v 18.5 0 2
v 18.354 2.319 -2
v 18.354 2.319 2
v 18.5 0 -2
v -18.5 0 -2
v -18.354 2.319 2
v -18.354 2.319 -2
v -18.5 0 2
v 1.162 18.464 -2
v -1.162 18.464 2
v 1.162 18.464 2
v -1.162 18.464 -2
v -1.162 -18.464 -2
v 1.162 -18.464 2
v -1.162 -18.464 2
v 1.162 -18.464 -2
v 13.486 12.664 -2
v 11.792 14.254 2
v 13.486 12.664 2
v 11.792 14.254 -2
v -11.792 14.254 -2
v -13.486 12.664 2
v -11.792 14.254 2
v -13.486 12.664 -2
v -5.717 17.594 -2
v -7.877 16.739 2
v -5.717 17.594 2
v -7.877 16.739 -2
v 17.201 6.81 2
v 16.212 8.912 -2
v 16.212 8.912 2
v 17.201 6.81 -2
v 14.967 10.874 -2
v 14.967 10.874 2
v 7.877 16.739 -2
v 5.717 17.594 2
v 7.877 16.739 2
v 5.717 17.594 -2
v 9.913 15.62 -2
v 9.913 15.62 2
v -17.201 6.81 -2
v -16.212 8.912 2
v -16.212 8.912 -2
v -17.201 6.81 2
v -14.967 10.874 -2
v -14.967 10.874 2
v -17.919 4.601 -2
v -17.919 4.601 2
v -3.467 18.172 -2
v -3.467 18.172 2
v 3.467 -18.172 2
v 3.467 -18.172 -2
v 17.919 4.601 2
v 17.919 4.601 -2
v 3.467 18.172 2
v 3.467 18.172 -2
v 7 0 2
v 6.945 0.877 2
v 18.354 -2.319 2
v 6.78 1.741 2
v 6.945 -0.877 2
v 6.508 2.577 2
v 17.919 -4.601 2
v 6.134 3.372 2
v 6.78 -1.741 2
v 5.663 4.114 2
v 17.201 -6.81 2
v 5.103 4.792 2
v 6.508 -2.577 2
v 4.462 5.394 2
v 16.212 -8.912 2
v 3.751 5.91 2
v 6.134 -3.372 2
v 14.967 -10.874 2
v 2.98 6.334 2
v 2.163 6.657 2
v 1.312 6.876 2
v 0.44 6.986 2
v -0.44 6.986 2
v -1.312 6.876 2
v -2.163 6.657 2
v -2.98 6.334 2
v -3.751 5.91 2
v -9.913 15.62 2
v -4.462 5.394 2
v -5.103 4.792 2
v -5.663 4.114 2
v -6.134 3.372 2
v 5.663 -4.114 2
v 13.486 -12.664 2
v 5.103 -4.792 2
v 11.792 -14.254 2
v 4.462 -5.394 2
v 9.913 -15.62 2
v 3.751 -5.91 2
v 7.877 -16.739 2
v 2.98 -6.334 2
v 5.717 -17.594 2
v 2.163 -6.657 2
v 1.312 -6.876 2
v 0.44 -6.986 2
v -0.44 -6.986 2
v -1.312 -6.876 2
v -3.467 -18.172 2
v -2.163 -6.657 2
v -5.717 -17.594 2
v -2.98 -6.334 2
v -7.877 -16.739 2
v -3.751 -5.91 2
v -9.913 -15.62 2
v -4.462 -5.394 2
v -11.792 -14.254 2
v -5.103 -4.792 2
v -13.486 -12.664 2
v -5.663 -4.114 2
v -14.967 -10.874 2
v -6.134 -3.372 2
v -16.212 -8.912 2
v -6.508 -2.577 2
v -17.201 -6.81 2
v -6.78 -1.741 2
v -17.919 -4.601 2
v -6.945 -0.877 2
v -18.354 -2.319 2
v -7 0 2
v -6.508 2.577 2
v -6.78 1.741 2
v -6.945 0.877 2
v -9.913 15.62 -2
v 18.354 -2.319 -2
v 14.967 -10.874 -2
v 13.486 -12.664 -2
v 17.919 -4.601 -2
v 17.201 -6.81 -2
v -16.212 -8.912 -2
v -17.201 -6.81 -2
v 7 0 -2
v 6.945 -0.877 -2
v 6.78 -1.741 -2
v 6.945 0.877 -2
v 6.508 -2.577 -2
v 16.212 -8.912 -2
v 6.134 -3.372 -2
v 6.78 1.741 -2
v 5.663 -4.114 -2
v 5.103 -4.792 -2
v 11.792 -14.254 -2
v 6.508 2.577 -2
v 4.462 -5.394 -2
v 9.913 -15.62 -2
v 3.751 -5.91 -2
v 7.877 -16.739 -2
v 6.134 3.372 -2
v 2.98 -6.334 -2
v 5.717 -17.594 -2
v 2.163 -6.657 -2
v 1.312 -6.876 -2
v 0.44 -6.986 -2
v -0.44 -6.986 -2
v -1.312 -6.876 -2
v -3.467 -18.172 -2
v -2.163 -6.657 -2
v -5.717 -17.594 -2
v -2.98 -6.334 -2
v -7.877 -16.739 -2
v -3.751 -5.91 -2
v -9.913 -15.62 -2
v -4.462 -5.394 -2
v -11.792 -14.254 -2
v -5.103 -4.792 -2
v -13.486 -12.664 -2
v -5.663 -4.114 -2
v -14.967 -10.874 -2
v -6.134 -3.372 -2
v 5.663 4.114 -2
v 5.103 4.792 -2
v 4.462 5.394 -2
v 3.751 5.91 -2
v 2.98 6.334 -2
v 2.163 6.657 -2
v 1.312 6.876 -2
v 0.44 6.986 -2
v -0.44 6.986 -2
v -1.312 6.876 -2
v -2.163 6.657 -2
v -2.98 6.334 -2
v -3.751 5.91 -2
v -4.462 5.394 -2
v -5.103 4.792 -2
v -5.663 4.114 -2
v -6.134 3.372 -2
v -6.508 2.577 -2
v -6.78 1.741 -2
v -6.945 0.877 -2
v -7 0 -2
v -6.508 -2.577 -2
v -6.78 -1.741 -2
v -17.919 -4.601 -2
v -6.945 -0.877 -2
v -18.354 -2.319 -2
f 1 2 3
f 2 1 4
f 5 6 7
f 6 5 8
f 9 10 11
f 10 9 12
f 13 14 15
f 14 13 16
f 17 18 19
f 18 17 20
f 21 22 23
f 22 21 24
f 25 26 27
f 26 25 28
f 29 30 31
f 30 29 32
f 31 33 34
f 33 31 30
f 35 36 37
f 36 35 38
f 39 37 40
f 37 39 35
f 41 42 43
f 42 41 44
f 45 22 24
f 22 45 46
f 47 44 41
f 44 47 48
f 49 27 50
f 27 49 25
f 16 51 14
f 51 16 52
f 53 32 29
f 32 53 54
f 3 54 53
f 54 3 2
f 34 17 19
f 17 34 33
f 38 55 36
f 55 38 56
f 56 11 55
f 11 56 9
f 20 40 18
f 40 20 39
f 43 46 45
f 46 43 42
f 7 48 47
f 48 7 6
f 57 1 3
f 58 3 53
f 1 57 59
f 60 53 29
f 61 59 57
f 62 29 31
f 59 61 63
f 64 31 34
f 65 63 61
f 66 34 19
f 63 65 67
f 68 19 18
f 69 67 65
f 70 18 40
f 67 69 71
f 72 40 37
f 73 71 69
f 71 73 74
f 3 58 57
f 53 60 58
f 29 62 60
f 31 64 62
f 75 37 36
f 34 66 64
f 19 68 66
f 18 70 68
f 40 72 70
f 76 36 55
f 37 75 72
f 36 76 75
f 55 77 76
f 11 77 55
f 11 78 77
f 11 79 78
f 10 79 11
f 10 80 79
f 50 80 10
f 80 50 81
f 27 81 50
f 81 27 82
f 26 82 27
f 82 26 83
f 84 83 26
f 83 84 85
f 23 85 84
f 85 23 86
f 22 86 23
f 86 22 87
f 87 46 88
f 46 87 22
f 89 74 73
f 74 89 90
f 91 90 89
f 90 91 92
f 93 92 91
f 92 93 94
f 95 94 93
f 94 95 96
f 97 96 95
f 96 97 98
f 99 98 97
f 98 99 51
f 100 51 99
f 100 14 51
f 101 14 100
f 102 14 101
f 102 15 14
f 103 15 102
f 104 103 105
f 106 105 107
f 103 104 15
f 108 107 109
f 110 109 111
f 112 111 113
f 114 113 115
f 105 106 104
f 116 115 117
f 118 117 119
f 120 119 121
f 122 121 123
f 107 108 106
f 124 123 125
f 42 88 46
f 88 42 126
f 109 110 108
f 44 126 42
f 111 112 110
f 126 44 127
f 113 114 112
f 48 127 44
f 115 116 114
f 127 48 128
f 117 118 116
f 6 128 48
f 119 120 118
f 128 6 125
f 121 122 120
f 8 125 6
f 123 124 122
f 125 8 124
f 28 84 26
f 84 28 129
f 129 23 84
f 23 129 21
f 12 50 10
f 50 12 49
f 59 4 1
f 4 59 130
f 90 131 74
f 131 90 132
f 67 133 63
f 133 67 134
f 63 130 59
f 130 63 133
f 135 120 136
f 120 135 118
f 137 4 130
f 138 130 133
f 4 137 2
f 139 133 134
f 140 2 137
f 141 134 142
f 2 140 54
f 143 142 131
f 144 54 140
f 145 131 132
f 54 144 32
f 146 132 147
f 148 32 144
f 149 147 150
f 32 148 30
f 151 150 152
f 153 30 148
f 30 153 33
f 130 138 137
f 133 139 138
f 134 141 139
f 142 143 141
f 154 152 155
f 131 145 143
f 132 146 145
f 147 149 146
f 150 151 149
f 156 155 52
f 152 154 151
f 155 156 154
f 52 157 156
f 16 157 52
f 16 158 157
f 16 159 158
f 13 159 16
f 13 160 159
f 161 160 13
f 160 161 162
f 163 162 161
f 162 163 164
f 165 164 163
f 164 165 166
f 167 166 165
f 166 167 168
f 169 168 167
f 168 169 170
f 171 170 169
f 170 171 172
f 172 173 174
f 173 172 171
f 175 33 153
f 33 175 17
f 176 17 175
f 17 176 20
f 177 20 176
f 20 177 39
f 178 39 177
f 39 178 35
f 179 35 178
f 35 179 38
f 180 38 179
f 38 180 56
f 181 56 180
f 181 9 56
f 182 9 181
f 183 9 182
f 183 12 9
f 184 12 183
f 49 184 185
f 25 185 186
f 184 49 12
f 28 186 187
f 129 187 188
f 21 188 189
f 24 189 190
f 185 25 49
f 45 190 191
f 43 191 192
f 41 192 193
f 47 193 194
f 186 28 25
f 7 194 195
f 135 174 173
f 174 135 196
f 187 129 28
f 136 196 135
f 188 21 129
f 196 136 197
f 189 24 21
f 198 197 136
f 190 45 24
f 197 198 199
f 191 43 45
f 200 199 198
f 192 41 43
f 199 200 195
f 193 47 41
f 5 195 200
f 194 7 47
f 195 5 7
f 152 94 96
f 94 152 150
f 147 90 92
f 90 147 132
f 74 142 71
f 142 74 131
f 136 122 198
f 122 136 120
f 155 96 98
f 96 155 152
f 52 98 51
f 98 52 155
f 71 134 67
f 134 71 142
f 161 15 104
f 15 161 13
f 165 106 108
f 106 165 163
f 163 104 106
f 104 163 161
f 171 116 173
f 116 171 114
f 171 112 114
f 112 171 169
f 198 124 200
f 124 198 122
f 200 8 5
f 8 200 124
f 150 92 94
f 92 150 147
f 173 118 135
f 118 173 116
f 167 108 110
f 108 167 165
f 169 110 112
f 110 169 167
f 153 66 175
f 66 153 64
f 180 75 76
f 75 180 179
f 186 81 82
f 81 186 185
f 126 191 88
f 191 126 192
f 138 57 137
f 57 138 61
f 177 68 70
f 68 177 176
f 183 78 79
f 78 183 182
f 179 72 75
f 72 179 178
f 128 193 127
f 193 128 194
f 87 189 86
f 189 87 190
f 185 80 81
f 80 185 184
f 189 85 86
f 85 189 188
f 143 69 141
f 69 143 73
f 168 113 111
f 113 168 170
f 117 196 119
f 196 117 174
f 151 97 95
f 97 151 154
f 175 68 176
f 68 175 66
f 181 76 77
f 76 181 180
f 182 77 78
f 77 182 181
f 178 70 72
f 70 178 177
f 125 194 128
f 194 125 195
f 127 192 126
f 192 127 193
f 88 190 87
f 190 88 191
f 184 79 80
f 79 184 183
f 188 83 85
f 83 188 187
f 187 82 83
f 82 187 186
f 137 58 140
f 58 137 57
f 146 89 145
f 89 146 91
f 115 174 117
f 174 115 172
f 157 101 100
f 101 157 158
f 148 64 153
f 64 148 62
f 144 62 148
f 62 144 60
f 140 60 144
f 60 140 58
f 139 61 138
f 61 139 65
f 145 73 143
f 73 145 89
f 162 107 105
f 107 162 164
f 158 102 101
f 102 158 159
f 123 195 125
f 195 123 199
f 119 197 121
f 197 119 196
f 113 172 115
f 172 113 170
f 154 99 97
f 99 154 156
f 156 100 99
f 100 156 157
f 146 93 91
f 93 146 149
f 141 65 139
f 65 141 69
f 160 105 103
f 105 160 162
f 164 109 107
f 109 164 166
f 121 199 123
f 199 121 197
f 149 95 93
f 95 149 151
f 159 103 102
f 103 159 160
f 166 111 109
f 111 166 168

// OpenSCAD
$fn = 50;


difference() {
	union() {
		translate(v = [0, 0, -2.0000000000]) {
			cylinder(h = 4, r = 18.5000000000);
		}
	}
	union() {
		translate(v = [0, 0, -100.0000000000]) {
			cylinder(h = 200, r = 7);
		}
	}
}
